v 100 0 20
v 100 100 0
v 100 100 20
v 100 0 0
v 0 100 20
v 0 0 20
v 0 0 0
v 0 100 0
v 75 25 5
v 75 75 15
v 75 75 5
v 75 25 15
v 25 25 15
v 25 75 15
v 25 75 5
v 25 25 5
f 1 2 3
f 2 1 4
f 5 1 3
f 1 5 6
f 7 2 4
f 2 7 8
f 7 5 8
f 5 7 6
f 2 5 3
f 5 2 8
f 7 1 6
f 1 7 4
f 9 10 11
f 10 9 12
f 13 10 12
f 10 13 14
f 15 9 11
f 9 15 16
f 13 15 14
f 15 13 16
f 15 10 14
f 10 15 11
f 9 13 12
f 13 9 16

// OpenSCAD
module unit_cell(size, thickness, cell_size) {
  difference() {
    cube([size, size, thickness]);
    translate([size/4, size/4, thickness/4])
    cube([size/2, size/2, thickness/2]);
  }
}

unit_cell(size = 100, thickness = 20, cell_size = 50);
